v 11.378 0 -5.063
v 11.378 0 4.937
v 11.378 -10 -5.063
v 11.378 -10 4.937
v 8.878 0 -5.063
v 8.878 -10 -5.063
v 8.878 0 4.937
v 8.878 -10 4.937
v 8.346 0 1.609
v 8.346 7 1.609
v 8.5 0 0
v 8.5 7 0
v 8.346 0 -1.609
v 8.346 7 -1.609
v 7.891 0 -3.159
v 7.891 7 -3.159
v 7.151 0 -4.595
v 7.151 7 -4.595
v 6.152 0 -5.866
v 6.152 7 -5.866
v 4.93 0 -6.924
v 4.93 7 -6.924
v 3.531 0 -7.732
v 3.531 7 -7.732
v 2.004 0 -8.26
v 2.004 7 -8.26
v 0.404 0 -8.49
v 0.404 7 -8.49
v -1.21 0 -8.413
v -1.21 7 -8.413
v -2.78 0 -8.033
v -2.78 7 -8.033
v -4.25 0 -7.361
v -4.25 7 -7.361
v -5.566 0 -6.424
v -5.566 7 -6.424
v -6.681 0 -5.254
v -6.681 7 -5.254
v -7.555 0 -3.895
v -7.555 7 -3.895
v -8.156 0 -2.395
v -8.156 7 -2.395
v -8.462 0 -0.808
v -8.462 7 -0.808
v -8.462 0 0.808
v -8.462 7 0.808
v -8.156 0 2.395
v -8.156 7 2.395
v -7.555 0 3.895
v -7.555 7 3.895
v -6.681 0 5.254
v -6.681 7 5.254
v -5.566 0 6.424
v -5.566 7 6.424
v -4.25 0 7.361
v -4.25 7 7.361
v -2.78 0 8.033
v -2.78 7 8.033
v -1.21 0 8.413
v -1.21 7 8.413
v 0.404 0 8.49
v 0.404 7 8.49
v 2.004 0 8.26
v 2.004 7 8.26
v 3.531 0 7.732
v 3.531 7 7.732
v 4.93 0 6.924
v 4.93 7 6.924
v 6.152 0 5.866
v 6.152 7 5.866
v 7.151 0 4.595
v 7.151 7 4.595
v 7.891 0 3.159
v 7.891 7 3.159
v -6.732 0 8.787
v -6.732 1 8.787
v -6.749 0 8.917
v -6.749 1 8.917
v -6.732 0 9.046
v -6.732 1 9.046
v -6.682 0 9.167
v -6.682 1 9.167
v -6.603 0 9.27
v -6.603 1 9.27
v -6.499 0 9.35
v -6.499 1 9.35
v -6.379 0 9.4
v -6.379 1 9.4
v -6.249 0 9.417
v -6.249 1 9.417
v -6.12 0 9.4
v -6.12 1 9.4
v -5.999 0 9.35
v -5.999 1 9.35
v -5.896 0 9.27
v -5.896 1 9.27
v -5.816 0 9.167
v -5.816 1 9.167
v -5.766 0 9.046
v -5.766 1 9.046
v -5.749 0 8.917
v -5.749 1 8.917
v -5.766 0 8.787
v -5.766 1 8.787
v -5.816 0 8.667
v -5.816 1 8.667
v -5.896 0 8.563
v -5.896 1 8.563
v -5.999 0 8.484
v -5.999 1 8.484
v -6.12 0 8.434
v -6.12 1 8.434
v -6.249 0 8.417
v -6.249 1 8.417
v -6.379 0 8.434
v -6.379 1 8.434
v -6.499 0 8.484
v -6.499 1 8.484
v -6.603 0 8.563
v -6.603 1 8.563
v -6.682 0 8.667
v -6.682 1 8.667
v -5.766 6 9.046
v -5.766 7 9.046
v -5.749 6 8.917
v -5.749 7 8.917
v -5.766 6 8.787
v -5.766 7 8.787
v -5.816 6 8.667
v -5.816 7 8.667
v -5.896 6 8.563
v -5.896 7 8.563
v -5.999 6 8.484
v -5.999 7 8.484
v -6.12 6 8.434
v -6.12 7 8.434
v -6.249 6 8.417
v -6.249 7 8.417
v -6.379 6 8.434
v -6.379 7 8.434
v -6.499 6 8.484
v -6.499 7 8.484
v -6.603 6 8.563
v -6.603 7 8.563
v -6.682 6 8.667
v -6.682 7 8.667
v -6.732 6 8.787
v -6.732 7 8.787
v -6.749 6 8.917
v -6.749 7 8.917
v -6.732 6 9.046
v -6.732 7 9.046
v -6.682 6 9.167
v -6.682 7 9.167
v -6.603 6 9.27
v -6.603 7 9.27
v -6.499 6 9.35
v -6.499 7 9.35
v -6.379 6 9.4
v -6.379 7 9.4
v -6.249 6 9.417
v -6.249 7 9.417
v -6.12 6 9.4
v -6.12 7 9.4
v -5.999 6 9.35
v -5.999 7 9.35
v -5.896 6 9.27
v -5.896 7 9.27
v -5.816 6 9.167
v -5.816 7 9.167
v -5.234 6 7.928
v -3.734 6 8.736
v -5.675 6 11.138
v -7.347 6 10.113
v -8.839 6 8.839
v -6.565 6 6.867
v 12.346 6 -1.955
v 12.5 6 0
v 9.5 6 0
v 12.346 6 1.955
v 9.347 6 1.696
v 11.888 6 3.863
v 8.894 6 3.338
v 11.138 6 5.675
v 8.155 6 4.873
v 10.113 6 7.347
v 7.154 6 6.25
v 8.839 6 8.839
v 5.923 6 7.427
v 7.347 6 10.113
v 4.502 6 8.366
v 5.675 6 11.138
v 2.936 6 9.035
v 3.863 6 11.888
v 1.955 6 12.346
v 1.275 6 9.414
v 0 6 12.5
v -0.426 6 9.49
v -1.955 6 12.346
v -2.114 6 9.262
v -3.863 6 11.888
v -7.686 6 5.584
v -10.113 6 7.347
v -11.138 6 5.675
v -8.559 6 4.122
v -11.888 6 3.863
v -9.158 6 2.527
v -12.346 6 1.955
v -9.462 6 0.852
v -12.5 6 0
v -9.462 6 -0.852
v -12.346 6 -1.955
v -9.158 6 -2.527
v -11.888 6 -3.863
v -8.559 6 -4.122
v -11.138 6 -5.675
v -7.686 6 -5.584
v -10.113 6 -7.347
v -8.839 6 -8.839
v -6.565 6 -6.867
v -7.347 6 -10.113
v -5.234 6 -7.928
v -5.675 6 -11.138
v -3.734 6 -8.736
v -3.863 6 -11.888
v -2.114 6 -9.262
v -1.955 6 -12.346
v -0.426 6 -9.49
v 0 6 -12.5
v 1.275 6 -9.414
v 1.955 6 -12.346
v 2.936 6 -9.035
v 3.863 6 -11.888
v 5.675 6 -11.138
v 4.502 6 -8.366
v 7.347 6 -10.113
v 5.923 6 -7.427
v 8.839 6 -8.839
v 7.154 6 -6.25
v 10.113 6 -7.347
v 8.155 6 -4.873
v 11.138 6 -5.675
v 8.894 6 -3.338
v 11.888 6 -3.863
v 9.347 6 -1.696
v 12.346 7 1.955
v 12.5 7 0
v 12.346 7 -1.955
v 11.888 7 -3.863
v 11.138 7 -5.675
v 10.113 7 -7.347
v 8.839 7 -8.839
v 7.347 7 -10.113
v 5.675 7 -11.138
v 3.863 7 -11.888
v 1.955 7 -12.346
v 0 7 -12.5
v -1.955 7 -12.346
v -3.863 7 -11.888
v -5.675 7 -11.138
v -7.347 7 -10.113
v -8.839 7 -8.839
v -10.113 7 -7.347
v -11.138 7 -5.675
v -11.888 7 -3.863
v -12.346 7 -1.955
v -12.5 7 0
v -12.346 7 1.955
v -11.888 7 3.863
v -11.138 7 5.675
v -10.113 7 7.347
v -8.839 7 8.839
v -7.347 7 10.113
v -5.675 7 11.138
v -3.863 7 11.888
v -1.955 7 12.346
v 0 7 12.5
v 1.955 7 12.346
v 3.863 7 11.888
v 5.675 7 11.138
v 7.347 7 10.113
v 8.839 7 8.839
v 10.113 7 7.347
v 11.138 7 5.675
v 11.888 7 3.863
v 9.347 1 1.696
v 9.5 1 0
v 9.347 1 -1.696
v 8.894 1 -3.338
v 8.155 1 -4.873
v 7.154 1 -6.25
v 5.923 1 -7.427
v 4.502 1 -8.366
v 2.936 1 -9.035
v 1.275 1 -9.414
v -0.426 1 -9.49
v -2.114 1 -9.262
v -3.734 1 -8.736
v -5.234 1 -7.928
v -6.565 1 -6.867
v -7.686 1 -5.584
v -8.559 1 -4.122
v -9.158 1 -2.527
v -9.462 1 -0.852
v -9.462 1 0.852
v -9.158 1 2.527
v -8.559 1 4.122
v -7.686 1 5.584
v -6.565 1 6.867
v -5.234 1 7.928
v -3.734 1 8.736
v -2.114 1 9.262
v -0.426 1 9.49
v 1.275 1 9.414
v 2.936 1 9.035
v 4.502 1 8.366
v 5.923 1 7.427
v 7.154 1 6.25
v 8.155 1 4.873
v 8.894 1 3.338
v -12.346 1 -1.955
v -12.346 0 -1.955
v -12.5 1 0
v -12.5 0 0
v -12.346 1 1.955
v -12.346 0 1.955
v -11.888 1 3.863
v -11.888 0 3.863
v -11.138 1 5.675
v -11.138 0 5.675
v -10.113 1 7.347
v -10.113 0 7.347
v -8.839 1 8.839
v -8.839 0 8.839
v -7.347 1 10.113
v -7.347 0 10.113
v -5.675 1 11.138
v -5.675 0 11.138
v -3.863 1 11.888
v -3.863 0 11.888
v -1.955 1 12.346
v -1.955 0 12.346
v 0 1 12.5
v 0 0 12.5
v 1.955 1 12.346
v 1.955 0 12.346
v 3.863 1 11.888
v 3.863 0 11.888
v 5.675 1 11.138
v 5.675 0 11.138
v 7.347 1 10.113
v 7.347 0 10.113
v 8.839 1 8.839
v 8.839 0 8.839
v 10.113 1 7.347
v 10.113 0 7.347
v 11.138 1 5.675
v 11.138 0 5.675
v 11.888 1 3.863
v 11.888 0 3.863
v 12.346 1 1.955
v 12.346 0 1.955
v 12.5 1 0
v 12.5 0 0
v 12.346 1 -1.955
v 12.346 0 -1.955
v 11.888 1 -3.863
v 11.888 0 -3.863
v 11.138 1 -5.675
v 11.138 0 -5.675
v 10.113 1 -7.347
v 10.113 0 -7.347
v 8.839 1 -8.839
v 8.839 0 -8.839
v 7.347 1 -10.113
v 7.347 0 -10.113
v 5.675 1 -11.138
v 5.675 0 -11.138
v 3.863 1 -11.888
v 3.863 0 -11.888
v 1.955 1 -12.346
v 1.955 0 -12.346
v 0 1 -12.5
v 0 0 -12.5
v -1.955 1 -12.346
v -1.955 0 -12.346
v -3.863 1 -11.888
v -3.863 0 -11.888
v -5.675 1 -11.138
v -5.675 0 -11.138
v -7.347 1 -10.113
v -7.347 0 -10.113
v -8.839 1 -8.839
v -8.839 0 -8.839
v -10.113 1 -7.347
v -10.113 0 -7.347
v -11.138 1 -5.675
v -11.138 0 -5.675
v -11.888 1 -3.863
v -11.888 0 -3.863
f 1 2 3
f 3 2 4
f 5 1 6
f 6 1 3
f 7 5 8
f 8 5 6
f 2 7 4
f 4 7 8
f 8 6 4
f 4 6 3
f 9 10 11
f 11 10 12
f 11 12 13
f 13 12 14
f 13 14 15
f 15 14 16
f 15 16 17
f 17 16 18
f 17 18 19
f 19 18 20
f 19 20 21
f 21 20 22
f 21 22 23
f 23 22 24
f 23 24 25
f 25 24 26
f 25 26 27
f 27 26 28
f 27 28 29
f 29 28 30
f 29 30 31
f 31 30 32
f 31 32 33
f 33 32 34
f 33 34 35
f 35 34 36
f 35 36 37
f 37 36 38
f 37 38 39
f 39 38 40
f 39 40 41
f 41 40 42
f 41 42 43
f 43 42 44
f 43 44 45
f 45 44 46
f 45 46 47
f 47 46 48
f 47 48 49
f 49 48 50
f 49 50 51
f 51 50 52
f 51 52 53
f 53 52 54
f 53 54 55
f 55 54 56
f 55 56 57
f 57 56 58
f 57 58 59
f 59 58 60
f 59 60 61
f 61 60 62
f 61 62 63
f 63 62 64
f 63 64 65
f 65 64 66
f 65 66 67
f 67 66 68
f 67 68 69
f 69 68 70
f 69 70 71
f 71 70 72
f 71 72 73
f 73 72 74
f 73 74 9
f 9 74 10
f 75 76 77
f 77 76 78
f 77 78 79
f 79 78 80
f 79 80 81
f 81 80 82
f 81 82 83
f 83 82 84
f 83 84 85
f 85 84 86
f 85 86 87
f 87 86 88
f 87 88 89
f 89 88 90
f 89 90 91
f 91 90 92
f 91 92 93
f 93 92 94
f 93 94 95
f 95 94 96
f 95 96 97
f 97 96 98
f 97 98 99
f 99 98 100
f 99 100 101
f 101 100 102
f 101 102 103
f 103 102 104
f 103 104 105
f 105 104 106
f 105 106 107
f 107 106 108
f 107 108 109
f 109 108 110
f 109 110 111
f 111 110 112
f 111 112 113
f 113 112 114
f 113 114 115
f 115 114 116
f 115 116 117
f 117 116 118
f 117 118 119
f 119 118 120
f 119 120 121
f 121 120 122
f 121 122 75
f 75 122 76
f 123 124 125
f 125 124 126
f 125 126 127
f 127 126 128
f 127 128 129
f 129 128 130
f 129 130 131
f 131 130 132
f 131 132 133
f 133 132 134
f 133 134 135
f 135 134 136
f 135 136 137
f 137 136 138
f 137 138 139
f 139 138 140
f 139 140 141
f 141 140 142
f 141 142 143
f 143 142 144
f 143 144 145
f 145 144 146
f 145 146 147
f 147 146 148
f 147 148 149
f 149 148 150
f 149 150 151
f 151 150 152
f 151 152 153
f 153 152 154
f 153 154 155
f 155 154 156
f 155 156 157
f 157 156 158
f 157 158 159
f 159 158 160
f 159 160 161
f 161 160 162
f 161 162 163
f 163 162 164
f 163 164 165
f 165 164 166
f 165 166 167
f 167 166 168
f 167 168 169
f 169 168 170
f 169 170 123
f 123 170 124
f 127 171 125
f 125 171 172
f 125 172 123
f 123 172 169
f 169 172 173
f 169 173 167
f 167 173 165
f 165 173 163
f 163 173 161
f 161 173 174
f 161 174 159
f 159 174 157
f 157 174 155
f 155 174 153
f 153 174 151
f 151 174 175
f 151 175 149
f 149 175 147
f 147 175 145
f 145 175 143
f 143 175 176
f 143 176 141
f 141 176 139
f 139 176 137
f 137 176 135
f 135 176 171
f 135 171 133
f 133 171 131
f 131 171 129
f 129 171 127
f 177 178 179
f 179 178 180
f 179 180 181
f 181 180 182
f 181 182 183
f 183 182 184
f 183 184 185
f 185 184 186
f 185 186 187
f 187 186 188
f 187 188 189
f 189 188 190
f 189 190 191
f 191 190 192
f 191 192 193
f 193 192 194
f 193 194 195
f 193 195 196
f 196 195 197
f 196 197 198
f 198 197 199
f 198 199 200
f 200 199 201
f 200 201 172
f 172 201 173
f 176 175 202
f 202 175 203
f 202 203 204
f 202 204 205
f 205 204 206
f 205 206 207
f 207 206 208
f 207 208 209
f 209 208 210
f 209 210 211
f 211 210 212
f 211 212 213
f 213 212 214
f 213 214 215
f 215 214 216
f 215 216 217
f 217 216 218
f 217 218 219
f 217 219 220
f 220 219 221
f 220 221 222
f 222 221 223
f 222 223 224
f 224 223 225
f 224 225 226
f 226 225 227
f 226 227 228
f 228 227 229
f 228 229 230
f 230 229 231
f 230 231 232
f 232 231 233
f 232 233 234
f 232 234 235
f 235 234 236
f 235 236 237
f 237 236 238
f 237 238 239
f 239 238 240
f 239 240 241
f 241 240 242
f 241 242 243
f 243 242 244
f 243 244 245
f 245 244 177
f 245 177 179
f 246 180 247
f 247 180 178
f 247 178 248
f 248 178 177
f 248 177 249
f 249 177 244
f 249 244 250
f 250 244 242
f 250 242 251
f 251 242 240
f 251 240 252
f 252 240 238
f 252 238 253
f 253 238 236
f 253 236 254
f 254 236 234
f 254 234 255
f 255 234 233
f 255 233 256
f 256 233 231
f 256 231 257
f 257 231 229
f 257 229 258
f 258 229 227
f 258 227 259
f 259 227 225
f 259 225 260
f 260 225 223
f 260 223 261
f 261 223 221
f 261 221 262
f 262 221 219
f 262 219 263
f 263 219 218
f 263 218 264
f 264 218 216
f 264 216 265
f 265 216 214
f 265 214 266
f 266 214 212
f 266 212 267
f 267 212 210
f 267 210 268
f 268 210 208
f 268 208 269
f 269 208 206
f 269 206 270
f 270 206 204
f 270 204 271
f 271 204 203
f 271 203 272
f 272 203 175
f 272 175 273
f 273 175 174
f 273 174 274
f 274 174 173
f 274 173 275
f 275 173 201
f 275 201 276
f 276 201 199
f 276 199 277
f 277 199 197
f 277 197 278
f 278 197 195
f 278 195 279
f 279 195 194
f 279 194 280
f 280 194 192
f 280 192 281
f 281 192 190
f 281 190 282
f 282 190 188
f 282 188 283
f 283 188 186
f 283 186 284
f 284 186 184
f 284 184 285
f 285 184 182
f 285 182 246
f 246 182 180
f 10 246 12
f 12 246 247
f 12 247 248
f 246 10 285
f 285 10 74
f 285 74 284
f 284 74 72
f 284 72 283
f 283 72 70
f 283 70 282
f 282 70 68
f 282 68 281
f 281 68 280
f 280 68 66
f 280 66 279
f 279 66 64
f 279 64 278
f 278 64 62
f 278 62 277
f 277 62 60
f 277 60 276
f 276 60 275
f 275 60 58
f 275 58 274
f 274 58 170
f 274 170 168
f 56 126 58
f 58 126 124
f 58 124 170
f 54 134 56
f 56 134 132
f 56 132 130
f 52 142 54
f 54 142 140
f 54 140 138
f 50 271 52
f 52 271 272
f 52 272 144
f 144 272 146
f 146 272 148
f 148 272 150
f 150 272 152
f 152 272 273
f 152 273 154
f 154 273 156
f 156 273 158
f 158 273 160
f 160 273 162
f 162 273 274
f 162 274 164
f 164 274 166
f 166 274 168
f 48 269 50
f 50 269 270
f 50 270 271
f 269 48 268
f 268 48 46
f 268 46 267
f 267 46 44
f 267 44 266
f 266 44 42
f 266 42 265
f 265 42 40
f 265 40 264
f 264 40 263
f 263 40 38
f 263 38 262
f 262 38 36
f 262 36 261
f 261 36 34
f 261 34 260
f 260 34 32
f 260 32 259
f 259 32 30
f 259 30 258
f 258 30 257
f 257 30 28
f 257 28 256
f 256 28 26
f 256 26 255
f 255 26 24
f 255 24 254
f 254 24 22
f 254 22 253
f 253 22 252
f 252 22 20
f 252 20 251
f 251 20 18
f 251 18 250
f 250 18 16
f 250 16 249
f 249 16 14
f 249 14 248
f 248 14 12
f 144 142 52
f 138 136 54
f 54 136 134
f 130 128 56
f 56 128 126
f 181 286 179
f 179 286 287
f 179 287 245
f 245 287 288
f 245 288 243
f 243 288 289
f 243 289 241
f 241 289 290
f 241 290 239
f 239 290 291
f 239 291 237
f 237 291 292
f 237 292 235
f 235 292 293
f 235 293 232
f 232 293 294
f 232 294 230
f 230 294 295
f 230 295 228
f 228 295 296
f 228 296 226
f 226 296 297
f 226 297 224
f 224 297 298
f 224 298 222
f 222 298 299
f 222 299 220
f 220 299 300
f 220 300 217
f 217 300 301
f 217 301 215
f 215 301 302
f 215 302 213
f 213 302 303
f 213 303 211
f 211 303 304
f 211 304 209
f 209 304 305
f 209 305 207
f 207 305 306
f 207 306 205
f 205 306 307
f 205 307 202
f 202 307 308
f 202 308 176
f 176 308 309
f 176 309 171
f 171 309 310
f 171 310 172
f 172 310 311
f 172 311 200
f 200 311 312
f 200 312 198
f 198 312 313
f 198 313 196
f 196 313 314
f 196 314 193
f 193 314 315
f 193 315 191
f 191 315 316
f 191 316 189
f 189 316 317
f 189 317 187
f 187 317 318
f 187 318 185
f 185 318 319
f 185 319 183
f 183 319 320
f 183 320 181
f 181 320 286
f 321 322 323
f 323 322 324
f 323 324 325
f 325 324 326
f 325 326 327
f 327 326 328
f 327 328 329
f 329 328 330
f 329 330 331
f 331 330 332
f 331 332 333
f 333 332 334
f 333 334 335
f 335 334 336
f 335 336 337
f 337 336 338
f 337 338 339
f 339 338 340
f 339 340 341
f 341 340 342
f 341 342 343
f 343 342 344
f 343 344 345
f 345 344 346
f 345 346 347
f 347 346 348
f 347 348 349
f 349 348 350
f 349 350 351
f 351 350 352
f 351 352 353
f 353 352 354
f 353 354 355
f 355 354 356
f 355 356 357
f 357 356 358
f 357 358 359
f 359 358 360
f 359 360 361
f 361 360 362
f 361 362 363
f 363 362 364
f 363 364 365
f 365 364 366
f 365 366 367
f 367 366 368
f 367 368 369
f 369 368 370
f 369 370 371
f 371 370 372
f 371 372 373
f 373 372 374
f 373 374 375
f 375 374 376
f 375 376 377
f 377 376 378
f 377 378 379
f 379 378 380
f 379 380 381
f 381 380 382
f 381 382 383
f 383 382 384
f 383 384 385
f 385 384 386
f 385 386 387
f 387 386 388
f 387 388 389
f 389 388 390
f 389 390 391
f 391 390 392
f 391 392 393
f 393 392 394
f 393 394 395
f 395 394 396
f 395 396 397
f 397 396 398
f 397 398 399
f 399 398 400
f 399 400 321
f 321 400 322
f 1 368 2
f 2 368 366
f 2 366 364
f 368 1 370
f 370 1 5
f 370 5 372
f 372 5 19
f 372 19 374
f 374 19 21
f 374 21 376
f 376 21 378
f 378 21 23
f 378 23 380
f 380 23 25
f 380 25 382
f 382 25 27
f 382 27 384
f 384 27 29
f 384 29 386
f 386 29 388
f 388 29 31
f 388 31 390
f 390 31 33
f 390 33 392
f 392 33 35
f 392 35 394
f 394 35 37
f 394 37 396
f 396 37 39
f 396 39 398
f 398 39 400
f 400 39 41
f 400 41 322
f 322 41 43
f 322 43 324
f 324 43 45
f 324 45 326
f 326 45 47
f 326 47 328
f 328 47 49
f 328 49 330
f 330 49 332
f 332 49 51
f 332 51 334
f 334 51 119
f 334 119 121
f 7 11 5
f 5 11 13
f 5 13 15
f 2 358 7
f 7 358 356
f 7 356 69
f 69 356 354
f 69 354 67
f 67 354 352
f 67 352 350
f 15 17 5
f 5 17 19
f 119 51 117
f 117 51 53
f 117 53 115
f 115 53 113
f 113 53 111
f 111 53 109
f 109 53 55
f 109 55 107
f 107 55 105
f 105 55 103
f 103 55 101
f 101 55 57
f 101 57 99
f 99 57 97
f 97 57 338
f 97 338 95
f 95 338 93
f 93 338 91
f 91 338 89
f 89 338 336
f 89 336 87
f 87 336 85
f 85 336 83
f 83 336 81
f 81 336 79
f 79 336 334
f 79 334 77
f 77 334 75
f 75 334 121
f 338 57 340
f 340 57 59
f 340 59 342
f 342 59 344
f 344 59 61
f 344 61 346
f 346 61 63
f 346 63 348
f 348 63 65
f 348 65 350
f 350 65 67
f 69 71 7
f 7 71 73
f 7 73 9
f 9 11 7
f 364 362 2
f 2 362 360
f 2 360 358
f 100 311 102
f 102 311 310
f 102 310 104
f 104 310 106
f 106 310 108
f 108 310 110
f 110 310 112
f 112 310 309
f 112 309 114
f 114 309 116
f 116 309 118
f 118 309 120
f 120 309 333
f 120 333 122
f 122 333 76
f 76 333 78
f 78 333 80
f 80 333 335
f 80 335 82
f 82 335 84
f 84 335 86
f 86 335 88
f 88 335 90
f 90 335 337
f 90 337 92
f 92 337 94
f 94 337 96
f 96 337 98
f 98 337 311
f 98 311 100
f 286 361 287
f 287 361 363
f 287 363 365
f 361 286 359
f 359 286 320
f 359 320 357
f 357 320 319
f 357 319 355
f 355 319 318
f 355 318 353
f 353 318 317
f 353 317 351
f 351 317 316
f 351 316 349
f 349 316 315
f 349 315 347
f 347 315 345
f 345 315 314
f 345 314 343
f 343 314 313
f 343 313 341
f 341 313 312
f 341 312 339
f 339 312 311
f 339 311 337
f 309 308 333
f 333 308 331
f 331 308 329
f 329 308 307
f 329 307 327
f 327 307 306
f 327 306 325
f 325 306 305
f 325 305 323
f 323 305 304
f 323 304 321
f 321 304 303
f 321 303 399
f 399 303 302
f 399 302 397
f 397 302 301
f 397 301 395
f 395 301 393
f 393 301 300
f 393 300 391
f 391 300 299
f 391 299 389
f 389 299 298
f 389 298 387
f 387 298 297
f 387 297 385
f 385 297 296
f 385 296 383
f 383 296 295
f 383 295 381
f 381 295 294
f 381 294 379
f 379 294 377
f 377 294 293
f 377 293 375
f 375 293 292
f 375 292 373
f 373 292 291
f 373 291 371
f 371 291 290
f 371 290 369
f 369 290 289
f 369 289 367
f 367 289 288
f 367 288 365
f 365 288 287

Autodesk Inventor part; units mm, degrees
ref_plane "YZ Plane" through (0, 0, 0) normal (1, 0, 0) x (0, 1, 0)
ref_plane "XZ Plane" through (0, 0, 0) normal (0, 1, 0) x (-1, 0, 0)
ref_plane "XY Plane" through (0, 0, 0) normal (0, 0, 1) x (1, 0, 0)
sketch "Sketch1" plane through (0, 0, 0) normal (0, 1, 0) x (-1, 0, 0)
  circle A0 centre (0, 0) radius 12.5
  dimension "d0" = 25
extrude "Extrusion1" add sketch "Sketch1" along normal blind 1
sketch "Sketch2" plane through (0, 1, 0) normal (0, 1, 0) x (1, 0, 0)
  circle A0 centre (0, 0) radius 9.5
  dimension "d3" = 19
extrude "Extrusion2" add sketch "Sketch2" along normal blind 5
sketch "Sketch3" plane through (0, 6, 0) normal (0, 1, 0) x (1, 0, 0)
  circle A0 centre (0, 0) radius 12.5
  dimension "d6" = 25
extrude "Extrusion3" add sketch "Sketch3" along normal blind 1
hole "Hole1" at (-6.2494, 7, 8.9167) direction (0, -1, 0) diameter 1 depth 7
sketch "Sketch4" plane through (0, 7, 0) normal (0, 1, 0) x (1, 0, 0)
  circle A0 centre (0, 0) radius 8.5
  dimension "d18" = 17
extrude "Extrusion4" cut sketch "Sketch4" against normal blind 7
thread "Thread1" size "4-24" class "2B" standard "Inch Tapping Threads" full length
sketch "Sketch5" plane through (0, 0, 0) normal (0, -1, 0) x (1, 0, 0)
  line L0 (11.3779, 4.9373) -> (8.8779, 4.9373)
  line L1 (8.8779, 4.9373) -> (8.8779, -5.0627)
  line L2 (8.8779, -5.0627) -> (11.3779, -5.0627)
  line L3 (11.3779, -5.0627) -> (11.3779, 4.9373)
  point P0 (0, 0)
  dimension "d23" = 10
  dimension "d24" = 2.5
extrude "Extrusion5" add sketch "Sketch5" along normal blind 10
properties part number "Ttube1"
